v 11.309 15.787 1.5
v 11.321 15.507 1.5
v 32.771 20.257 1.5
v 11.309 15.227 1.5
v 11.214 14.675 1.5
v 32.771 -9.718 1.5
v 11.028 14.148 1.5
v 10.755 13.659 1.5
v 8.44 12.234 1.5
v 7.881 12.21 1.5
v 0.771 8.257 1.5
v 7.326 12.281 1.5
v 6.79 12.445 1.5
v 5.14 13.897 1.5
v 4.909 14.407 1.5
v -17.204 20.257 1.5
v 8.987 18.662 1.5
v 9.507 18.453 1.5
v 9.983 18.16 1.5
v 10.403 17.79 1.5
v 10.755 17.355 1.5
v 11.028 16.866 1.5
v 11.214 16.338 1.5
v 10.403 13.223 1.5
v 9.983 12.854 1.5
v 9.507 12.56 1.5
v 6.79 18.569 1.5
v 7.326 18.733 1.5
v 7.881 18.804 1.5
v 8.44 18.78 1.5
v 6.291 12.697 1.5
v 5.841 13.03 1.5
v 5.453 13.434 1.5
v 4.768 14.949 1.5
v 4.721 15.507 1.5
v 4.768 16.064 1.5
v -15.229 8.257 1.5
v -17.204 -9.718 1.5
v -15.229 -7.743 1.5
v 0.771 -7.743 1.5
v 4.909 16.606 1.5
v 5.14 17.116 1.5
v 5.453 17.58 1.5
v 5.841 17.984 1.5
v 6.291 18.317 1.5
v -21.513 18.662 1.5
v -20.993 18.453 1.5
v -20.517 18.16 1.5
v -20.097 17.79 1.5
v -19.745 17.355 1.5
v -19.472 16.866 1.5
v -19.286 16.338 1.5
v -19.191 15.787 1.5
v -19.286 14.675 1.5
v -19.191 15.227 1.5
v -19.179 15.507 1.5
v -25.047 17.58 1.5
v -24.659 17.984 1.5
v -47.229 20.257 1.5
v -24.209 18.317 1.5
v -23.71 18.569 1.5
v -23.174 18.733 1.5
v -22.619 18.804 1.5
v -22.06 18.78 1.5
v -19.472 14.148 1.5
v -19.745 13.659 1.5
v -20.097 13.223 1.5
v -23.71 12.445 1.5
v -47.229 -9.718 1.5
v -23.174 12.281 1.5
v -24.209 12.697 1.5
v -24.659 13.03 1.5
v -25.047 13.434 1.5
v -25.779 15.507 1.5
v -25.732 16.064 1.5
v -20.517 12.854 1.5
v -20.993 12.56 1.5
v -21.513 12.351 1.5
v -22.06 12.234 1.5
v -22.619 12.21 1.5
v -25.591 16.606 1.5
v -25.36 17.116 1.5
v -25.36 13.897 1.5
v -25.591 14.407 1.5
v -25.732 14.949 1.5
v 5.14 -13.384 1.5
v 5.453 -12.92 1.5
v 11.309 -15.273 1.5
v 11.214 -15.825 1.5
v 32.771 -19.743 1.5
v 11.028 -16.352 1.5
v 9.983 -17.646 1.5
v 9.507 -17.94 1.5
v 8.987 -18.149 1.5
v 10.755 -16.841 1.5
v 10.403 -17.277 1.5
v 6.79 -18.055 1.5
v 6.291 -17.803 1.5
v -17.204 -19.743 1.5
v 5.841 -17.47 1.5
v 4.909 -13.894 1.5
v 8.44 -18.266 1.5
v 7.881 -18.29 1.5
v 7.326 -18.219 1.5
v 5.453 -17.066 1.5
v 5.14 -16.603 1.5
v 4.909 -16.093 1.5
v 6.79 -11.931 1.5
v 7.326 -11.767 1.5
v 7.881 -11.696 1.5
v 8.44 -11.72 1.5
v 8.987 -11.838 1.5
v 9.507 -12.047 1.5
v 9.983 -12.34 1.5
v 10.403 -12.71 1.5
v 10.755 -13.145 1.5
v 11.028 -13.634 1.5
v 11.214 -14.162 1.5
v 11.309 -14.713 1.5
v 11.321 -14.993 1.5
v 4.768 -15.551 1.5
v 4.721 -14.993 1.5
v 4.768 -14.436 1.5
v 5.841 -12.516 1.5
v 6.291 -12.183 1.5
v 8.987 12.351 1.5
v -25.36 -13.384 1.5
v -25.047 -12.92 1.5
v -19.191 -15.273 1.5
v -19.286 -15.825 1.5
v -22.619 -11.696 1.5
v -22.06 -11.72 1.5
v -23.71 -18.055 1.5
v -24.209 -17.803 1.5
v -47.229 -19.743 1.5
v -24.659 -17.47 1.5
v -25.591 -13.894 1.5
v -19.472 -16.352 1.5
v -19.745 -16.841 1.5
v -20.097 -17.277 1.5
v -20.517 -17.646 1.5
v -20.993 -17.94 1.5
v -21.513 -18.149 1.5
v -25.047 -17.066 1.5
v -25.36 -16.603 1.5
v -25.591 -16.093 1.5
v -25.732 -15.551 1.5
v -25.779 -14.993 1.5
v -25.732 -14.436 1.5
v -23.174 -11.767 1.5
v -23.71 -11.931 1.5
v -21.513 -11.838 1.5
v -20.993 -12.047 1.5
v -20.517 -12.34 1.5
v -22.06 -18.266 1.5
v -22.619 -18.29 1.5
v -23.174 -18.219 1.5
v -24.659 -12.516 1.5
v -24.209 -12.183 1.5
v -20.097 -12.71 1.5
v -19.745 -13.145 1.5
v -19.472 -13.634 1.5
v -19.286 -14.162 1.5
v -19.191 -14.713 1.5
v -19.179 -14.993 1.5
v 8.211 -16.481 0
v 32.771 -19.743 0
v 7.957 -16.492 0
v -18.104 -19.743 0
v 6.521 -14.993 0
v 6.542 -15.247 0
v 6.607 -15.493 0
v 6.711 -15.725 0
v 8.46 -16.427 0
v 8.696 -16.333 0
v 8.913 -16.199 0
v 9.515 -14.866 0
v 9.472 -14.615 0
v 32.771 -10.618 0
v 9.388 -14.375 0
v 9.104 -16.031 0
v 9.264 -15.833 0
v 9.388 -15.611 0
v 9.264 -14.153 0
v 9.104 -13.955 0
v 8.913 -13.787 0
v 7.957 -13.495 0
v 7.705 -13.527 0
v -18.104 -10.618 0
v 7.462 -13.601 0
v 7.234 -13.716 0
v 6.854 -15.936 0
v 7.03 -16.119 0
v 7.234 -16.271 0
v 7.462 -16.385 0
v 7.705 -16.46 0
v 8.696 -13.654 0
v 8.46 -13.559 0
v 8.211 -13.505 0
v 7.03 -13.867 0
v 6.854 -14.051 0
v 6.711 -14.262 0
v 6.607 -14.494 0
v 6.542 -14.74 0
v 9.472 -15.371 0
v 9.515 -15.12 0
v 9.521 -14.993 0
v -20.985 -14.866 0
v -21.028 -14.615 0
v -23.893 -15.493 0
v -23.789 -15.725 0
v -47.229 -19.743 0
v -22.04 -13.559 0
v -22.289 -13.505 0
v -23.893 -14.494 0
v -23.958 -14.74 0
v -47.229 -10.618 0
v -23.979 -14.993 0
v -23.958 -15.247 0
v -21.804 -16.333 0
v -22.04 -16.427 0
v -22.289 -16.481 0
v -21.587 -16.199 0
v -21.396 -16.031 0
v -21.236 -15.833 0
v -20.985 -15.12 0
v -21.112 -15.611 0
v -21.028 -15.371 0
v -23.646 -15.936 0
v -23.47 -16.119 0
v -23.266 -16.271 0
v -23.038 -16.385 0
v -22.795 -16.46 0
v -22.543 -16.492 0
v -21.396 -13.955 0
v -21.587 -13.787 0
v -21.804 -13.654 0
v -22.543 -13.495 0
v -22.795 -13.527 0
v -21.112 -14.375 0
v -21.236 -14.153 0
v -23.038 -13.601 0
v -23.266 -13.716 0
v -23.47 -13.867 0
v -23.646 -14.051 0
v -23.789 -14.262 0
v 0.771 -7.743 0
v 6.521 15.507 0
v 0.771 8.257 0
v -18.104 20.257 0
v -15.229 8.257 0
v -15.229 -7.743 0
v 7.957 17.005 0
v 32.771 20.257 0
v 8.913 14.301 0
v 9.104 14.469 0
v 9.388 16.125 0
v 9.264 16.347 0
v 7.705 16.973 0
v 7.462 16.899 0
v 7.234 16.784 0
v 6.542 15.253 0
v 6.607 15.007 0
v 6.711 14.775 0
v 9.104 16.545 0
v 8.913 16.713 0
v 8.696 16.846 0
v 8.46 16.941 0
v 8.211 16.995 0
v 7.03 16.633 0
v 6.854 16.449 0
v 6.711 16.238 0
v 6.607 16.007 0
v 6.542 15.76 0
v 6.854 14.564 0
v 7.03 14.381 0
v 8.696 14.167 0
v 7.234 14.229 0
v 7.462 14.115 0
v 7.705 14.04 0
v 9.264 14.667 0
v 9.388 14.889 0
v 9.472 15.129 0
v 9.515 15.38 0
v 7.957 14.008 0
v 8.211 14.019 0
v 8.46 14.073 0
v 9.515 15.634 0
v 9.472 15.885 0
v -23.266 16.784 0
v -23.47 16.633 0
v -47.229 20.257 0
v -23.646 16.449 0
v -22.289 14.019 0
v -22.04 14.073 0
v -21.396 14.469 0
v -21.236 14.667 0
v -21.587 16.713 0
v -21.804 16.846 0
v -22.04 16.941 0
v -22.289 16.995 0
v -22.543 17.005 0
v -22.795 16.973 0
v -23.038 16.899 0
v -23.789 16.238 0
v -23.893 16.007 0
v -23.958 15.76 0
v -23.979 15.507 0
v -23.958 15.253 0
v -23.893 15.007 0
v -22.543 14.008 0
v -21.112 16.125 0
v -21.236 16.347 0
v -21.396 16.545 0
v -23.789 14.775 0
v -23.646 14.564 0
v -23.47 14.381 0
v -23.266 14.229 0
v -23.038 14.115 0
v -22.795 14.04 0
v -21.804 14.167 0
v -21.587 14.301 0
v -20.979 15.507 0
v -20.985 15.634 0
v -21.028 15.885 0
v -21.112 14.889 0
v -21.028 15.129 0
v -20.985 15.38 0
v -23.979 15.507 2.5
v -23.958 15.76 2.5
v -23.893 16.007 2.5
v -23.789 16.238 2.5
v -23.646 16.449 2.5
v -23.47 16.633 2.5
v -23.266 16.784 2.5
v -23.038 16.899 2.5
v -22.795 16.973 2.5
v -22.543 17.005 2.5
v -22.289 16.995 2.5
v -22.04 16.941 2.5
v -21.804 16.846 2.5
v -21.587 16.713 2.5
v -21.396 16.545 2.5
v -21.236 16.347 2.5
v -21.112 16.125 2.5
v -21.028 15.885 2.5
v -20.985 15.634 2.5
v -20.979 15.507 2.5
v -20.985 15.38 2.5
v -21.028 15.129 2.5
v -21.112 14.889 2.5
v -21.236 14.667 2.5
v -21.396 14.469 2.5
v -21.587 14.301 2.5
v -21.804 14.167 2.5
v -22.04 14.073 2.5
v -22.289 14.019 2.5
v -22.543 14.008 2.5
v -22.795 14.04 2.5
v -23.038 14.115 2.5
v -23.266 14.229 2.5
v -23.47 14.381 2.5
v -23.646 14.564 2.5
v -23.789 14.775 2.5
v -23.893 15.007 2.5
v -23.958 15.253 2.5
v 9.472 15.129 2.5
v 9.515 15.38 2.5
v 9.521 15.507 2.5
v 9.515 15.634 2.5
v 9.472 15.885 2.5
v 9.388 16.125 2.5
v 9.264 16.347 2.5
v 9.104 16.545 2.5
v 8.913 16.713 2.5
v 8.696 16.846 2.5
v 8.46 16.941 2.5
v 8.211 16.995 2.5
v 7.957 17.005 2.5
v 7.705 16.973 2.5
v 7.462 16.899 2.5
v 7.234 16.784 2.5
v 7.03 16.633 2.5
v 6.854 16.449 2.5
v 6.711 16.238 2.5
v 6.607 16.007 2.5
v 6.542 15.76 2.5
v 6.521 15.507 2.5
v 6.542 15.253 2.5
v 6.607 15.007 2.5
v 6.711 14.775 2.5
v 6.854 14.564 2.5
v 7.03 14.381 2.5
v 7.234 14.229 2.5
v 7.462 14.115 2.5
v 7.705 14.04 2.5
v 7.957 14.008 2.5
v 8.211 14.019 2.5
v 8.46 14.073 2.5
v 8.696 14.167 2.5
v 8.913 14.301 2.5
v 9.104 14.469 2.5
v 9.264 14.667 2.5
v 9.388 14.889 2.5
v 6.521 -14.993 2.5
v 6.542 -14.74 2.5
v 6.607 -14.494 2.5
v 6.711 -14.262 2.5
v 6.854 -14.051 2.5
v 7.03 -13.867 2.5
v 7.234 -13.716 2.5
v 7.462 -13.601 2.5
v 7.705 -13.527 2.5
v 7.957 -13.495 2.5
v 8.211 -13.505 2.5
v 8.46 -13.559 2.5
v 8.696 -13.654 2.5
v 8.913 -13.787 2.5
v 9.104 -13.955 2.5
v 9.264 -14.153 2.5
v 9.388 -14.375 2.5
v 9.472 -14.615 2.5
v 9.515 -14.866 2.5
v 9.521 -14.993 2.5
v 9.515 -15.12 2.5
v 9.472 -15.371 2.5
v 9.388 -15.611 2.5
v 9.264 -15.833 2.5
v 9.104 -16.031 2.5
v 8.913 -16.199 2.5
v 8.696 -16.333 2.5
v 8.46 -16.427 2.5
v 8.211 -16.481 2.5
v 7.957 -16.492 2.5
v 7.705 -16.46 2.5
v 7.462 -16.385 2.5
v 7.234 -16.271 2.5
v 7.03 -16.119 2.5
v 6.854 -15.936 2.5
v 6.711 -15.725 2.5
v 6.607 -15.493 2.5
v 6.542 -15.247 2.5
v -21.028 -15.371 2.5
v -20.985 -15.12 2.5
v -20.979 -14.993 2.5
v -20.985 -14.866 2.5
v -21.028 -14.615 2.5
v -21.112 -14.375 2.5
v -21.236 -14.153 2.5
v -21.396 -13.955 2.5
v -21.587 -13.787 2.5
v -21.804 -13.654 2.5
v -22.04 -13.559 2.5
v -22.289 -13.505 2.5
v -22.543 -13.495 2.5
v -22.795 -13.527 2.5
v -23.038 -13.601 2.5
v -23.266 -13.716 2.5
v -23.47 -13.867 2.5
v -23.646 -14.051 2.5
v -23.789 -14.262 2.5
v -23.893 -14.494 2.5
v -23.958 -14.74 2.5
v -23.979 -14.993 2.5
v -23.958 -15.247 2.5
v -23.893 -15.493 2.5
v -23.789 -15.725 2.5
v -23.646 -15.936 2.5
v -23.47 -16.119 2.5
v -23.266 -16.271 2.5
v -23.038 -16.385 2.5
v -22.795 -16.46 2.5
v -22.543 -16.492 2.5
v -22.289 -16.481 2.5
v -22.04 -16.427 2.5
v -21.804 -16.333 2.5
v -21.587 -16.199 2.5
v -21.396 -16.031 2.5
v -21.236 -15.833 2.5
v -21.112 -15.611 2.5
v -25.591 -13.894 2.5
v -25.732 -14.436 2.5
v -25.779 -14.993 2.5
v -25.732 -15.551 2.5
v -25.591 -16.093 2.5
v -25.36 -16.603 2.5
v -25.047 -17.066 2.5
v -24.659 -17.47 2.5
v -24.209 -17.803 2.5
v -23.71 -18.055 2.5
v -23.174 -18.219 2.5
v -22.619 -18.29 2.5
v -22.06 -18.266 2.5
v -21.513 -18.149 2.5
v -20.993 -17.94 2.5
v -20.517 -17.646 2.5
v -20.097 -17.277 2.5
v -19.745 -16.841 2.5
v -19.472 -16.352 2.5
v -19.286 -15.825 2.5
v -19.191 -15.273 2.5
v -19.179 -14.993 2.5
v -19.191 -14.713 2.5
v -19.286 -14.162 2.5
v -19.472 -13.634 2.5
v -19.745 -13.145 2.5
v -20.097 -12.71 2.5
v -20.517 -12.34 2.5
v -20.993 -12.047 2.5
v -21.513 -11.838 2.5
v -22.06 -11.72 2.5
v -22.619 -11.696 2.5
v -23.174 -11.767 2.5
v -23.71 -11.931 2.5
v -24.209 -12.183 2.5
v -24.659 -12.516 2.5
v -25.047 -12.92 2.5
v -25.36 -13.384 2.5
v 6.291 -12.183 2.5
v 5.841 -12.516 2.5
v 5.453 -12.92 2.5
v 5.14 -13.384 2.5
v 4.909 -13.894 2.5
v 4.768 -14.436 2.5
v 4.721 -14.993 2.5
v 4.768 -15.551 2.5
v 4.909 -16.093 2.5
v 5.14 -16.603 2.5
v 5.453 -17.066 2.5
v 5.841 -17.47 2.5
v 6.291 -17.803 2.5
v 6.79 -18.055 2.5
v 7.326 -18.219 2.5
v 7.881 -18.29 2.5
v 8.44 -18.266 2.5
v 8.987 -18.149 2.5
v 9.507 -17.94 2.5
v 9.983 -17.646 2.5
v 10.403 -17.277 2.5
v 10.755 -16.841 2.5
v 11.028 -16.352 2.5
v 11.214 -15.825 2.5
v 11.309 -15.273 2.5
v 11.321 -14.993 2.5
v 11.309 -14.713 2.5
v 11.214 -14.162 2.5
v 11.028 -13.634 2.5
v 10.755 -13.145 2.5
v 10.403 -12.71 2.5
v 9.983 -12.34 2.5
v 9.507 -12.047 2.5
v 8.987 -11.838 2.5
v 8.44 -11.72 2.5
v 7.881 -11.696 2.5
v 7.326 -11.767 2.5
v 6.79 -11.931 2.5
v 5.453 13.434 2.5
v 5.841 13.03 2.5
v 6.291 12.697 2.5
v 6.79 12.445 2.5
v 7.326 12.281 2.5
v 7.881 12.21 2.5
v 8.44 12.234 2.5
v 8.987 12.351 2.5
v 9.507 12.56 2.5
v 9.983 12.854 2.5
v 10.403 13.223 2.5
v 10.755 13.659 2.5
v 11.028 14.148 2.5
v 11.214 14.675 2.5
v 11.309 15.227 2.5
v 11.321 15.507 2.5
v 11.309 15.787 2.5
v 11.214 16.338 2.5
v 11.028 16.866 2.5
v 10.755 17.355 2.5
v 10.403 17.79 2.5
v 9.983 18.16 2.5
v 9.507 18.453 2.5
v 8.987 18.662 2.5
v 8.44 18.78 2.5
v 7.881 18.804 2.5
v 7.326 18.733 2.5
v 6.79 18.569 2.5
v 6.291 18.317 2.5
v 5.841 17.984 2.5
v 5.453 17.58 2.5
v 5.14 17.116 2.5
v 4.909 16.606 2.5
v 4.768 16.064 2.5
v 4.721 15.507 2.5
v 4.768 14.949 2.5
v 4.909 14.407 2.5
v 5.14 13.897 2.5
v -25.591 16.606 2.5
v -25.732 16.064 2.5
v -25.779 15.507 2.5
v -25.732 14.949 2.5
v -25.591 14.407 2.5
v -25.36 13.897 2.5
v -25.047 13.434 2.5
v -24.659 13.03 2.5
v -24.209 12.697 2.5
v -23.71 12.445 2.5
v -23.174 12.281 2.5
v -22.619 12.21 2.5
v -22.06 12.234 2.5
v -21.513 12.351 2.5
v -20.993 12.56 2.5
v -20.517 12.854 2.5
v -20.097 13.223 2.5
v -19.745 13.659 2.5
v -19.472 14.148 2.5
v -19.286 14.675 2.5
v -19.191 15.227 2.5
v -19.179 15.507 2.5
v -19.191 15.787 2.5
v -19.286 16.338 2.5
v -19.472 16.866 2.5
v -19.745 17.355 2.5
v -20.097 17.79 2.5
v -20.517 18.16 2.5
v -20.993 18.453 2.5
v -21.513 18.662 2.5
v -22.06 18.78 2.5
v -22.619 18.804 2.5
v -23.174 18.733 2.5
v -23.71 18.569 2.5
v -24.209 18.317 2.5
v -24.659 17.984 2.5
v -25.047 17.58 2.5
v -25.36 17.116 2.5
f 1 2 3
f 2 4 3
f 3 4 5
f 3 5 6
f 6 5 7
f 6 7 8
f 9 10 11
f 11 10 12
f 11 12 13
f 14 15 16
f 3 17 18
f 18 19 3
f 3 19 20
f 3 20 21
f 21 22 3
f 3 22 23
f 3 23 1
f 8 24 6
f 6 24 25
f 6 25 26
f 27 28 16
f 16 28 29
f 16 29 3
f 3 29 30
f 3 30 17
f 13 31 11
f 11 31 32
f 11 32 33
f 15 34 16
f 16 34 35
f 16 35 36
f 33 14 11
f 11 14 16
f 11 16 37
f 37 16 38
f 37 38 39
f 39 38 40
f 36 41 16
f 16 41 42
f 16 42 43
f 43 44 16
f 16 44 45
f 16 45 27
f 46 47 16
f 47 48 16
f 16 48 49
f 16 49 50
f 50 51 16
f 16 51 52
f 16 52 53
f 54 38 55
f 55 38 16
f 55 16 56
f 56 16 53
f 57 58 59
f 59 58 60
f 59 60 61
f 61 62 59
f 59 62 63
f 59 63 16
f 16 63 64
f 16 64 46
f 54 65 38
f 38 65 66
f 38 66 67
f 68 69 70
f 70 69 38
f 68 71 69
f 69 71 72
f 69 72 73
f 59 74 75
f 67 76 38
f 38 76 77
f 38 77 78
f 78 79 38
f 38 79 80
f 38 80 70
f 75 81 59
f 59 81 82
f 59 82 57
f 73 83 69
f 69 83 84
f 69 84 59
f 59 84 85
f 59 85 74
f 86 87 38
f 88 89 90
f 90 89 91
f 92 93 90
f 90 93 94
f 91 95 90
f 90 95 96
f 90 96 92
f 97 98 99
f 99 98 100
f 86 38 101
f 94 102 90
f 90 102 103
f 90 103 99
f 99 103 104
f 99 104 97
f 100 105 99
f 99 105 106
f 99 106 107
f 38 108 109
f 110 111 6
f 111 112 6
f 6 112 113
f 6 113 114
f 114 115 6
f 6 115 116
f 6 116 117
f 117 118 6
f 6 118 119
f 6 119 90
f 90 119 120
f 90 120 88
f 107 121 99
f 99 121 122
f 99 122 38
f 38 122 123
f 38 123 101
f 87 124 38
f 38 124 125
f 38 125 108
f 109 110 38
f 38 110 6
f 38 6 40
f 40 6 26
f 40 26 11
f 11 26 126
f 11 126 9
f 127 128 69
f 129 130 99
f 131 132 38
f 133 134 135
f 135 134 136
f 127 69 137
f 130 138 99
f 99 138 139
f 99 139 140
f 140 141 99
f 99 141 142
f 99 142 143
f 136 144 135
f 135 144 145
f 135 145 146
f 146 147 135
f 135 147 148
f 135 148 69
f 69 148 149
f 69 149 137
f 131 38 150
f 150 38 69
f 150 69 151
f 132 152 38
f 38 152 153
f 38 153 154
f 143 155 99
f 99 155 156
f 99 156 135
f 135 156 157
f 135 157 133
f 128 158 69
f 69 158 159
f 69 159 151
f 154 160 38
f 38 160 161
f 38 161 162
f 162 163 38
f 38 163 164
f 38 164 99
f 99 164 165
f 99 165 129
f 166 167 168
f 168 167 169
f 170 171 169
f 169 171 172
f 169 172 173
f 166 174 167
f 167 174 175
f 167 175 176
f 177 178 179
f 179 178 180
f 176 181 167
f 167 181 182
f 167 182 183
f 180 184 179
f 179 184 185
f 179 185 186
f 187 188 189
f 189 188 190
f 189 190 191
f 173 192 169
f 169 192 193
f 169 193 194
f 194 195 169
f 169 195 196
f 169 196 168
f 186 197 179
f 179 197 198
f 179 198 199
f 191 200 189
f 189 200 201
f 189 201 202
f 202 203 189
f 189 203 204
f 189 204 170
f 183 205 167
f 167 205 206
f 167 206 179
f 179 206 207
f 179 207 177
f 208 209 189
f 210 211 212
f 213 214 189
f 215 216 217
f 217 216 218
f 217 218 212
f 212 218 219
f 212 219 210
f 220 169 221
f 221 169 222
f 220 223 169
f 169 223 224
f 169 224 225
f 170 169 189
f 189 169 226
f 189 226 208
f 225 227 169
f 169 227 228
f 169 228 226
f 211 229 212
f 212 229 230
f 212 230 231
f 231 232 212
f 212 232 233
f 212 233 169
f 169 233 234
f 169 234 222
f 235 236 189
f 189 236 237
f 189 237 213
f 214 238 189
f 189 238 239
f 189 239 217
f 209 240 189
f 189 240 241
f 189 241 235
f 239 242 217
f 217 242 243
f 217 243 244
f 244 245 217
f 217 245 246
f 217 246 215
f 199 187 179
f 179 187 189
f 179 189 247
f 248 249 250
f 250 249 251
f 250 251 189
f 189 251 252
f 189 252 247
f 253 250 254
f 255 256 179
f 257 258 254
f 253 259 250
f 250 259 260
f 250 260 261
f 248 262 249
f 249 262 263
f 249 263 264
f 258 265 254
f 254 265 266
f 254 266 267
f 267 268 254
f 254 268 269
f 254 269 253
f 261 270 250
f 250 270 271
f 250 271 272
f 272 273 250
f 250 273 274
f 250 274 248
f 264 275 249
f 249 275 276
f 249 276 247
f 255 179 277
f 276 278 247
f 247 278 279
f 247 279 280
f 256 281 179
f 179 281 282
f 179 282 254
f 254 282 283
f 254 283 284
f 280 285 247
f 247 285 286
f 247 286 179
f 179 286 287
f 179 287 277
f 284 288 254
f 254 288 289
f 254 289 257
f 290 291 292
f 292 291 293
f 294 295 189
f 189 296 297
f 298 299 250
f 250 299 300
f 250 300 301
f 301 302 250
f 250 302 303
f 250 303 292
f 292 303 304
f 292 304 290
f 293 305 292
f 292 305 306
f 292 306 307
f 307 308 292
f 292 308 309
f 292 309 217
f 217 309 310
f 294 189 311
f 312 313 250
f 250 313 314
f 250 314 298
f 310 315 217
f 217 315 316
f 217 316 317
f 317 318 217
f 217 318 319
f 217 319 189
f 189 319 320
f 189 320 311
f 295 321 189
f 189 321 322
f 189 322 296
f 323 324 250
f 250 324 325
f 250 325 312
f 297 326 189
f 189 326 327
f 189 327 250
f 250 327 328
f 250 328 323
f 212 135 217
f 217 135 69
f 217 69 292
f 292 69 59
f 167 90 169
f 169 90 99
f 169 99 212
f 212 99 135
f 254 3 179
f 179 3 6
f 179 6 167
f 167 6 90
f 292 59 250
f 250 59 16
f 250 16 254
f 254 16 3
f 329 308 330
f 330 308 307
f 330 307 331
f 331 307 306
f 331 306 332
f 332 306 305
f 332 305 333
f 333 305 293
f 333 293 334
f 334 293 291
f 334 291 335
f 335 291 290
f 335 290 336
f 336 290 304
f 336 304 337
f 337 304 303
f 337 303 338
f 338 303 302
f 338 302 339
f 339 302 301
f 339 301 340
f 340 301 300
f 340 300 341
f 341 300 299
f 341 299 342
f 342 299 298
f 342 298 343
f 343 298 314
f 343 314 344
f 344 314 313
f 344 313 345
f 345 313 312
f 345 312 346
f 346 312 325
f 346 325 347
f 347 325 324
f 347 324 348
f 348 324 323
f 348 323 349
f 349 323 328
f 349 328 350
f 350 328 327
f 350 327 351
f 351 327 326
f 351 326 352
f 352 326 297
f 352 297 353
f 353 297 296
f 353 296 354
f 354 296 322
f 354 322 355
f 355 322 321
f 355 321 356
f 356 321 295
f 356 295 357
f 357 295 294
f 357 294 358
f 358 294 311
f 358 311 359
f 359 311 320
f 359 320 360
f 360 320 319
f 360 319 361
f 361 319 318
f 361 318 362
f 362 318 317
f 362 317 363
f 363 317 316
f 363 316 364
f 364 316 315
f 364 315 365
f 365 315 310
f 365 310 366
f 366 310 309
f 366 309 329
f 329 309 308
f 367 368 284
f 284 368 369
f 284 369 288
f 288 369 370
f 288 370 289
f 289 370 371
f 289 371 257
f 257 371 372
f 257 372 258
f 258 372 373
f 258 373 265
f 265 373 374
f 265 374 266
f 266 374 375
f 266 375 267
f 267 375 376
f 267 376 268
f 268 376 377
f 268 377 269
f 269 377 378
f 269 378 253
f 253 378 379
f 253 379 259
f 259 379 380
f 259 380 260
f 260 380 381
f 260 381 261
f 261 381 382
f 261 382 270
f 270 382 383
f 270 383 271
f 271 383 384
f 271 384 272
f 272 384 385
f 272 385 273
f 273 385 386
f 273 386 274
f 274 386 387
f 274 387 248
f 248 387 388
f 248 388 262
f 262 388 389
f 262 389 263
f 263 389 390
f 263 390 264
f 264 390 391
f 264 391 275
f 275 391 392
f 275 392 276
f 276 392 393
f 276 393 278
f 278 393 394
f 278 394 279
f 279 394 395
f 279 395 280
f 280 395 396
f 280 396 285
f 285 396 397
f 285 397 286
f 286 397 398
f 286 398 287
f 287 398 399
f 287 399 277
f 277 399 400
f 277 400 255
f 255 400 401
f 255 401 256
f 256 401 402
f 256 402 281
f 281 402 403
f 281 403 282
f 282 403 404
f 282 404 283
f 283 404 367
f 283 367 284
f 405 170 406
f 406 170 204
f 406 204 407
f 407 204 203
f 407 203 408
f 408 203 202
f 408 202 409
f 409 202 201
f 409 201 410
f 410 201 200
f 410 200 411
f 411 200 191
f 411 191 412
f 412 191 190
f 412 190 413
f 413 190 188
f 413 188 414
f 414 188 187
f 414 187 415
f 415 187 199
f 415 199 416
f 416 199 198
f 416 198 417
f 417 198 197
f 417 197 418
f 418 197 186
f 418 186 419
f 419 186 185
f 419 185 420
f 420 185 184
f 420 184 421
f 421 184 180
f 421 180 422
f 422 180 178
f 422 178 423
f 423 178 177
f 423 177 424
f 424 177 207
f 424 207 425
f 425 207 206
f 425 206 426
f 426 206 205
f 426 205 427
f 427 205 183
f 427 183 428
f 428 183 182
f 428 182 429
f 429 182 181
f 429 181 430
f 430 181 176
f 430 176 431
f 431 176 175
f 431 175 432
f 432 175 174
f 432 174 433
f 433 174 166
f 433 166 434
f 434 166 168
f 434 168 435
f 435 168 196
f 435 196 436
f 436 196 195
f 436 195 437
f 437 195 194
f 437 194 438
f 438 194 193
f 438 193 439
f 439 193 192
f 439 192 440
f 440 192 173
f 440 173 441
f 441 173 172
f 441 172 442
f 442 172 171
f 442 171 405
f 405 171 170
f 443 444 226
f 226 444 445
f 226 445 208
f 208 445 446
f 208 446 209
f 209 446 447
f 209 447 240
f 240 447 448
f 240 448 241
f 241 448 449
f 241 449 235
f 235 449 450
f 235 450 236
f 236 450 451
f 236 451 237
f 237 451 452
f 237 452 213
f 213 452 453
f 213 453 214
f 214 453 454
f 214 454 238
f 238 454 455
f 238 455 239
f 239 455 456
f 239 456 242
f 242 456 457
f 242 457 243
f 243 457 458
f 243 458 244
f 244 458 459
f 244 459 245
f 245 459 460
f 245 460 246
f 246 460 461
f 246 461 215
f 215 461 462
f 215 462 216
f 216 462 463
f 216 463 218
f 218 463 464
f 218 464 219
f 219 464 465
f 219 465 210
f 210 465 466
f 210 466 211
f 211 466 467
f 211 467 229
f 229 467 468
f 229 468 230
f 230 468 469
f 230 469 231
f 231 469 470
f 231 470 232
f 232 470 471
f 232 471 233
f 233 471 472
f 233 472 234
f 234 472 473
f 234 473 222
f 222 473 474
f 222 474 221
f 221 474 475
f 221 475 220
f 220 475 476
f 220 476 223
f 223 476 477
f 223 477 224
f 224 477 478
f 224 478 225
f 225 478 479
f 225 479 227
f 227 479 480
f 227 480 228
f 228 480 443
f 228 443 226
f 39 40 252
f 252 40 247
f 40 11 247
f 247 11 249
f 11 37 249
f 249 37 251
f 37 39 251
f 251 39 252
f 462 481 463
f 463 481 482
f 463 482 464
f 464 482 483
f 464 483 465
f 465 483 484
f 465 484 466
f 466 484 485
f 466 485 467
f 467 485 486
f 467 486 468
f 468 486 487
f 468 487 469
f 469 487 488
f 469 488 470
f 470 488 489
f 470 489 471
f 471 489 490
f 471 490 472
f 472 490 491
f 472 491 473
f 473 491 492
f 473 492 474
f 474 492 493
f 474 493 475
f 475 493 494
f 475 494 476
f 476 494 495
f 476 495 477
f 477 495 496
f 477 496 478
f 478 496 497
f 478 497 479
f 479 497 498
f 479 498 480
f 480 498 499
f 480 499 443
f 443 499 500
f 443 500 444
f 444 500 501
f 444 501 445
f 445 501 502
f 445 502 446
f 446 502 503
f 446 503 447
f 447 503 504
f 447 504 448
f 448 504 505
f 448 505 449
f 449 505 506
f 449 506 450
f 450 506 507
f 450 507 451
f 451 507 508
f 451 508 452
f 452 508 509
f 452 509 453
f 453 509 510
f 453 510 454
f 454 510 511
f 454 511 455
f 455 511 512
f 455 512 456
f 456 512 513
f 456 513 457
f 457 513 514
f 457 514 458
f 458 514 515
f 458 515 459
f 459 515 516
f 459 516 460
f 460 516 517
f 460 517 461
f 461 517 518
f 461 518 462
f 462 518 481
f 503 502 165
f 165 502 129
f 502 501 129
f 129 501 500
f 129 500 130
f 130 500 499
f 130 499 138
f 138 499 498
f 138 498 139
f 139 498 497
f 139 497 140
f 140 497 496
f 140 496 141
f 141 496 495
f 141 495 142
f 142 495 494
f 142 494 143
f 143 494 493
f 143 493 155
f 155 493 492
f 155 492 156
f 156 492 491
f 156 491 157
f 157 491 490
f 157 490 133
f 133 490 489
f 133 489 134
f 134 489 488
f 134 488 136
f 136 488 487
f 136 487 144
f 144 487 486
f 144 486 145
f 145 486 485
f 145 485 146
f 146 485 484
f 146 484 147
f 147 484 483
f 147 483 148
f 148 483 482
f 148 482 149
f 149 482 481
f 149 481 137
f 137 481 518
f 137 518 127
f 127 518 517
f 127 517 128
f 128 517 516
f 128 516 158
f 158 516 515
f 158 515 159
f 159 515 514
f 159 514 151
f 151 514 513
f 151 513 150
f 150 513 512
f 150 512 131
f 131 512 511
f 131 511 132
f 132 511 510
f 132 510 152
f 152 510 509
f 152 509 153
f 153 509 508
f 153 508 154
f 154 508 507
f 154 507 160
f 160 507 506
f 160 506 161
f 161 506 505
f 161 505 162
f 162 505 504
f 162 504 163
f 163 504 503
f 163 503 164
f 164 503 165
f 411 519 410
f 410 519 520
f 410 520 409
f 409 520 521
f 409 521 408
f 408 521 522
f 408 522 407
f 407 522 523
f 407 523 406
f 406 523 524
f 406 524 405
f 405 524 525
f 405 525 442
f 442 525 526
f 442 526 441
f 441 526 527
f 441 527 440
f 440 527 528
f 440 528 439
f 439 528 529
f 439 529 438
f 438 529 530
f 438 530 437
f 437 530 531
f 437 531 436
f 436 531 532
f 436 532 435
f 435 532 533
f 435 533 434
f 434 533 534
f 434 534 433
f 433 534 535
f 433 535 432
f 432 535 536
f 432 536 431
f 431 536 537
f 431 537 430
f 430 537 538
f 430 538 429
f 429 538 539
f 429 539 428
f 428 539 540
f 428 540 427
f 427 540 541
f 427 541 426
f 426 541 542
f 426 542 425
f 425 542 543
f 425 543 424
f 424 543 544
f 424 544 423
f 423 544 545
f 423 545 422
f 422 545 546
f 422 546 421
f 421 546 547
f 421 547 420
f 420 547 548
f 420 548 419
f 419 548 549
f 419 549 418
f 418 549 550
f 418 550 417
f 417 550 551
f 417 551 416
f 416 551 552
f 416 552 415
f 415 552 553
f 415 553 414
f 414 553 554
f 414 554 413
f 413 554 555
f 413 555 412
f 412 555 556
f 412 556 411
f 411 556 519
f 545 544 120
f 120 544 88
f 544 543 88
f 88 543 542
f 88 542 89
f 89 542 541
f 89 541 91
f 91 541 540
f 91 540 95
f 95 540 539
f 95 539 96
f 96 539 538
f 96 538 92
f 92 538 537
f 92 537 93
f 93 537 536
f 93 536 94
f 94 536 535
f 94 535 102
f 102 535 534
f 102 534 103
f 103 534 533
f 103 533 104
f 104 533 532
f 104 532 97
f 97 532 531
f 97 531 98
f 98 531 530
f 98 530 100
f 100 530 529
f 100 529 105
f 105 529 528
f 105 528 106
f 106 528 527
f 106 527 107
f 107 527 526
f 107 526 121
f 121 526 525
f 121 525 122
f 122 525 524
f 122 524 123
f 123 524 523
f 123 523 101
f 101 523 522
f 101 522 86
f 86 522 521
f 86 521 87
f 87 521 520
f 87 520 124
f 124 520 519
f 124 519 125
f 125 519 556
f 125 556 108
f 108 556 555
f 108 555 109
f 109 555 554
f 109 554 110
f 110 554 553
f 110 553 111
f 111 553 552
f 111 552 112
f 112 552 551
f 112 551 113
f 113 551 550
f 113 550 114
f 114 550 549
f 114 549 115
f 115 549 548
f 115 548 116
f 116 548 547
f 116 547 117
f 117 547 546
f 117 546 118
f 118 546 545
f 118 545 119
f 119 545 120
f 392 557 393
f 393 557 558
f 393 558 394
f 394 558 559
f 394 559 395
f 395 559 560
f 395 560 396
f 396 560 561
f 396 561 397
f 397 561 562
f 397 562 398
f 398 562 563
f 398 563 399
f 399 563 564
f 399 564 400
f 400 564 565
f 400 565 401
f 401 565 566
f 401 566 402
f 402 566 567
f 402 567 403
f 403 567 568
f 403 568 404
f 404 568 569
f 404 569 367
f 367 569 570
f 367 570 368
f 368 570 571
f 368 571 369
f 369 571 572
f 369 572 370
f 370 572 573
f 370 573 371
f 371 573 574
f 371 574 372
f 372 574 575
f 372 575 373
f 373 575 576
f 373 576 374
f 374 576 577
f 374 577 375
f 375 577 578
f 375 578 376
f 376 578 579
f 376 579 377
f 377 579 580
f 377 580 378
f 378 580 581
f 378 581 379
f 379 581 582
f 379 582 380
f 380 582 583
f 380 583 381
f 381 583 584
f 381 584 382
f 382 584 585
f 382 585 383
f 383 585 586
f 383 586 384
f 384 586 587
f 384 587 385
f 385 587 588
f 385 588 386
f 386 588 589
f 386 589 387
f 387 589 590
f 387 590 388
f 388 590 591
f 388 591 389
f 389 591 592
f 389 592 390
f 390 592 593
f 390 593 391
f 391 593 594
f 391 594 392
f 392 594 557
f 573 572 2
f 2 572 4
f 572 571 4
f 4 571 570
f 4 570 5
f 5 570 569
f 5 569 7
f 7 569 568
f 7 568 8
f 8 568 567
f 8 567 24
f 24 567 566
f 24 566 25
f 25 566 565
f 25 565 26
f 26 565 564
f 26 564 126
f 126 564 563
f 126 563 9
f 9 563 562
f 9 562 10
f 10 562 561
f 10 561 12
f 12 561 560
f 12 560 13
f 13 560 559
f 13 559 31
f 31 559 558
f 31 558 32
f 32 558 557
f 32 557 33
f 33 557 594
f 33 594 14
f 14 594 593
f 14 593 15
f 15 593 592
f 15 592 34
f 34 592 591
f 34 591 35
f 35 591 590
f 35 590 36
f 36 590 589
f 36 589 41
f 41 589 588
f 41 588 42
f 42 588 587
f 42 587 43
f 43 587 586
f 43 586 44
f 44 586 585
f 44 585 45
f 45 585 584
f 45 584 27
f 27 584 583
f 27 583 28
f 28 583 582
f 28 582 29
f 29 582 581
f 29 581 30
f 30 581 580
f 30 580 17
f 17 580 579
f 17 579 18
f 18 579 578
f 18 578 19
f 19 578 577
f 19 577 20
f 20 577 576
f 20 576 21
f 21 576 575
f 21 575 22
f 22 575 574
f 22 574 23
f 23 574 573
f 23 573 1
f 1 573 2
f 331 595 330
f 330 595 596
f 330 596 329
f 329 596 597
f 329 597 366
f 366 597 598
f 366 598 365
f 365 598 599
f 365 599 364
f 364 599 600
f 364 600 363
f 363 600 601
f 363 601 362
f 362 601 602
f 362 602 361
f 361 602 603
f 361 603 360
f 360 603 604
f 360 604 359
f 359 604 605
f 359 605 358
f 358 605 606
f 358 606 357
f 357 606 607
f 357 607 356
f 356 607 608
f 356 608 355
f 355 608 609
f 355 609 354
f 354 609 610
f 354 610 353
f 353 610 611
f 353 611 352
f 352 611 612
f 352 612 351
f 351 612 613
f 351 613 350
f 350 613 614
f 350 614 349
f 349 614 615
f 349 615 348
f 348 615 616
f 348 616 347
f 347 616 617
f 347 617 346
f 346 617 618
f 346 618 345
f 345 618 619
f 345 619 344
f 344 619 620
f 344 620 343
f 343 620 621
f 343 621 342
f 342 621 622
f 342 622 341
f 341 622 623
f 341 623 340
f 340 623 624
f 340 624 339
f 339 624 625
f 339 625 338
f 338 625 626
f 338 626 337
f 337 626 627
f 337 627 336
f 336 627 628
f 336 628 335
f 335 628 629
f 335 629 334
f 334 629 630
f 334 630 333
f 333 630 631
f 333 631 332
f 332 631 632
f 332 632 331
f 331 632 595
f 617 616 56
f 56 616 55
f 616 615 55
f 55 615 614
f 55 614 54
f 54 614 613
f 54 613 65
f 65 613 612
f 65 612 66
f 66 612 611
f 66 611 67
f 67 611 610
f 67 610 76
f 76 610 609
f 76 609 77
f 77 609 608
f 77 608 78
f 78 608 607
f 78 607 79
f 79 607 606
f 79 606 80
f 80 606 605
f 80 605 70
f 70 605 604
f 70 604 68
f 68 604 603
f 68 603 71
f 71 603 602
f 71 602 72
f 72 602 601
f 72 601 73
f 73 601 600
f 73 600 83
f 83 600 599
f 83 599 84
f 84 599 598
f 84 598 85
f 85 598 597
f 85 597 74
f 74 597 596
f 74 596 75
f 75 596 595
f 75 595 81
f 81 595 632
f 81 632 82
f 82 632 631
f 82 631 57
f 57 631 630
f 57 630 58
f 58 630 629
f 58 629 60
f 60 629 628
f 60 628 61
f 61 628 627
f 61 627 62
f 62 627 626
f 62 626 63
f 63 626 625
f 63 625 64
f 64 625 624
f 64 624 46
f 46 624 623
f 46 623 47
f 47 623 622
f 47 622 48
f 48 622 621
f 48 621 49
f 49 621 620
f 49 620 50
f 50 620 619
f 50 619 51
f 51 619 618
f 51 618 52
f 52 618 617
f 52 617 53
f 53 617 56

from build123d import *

# Parameters (mm, degrees)
SKETCH_2_W      = 80
SKETCH_2_H      = 40
SKETCH_2_R      = 1.5
EXTRUDE_1_DEPTH = 1.5
SKETCH_3_R      = 3.3
SKETCH_3_R_2    = 1.5
EXTRUDE_2_DEPTH = 1


with BuildPart() as part:
    # 草图2 → 凸台-拉伸1 (new body)
    with BuildSketch(Plane.XY):
        with Locations((-7.229146383, 0.256789608)):
            Rectangle(SKETCH_2_W, SKETCH_2_H)
        with Locations((-22.479146383, 15.506789608)):
            Circle(SKETCH_2_R, mode=Mode.SUBTRACT)
        with Locations(Location((8.020853617, 15.506789608, 0), (0, 0, 180))):
            Circle(SKETCH_2_R, mode=Mode.SUBTRACT)
        with Locations((8.020853617, -14.993210392)):
            Circle(SKETCH_2_R, mode=Mode.SUBTRACT)
        with Locations(Location((-22.479146383, -14.993210392, 0), (0, 0, 180))):
            Circle(SKETCH_2_R, mode=Mode.SUBTRACT)
        Polygon((-7.229146383, -7.743210392), (0.770853617, -7.743210392), (0.770853617, 8.256789608), (-15.229146383, 8.256789608), (-15.229146383, -7.743210392), align=None, mode=Mode.SUBTRACT)
    extrude(amount=EXTRUDE_1_DEPTH)

    # 草图3 → 凸台-拉伸2 (add)
    # profile 1 of 4: a face of its own
    with BuildSketch(Plane.XY.offset(1.5)):
        with Locations((-22.479146383, 15.506789608)):
            Circle(SKETCH_3_R)
        with Locations((-22.479146383, 15.506789608)):
            Circle(SKETCH_3_R_2, mode=Mode.SUBTRACT)
    # profile 2 of 4: a face of its own
    with BuildSketch(Plane.XY.offset(1.5)):
        with Locations((8.020853617, 15.506789608)):
            Circle(SKETCH_3_R)
        with Locations(Location((8.020853617, 15.506789608, 0), (0, 0, 180))):
            Circle(SKETCH_3_R_2, mode=Mode.SUBTRACT)
    # profile 3 of 4: a face of its own
    with BuildSketch(Plane.XY.offset(1.5)):
        with Locations((-22.479146383, -14.993210392)):
            Circle(SKETCH_3_R)
        with Locations(Location((-22.479146383, -14.993210392, 0), (0, 0, 180))):
            Circle(SKETCH_3_R_2, mode=Mode.SUBTRACT)
    # profile 4 of 4: a face of its own
    with BuildSketch(Plane.XY.offset(1.5)):
        with Locations((8.020853617, -14.993210392)):
            Circle(SKETCH_3_R)
        with Locations((8.020853617, -14.993210392)):
            Circle(SKETCH_3_R_2, mode=Mode.SUBTRACT)
    extrude(amount=EXTRUDE_2_DEPTH)


solid = part.part
